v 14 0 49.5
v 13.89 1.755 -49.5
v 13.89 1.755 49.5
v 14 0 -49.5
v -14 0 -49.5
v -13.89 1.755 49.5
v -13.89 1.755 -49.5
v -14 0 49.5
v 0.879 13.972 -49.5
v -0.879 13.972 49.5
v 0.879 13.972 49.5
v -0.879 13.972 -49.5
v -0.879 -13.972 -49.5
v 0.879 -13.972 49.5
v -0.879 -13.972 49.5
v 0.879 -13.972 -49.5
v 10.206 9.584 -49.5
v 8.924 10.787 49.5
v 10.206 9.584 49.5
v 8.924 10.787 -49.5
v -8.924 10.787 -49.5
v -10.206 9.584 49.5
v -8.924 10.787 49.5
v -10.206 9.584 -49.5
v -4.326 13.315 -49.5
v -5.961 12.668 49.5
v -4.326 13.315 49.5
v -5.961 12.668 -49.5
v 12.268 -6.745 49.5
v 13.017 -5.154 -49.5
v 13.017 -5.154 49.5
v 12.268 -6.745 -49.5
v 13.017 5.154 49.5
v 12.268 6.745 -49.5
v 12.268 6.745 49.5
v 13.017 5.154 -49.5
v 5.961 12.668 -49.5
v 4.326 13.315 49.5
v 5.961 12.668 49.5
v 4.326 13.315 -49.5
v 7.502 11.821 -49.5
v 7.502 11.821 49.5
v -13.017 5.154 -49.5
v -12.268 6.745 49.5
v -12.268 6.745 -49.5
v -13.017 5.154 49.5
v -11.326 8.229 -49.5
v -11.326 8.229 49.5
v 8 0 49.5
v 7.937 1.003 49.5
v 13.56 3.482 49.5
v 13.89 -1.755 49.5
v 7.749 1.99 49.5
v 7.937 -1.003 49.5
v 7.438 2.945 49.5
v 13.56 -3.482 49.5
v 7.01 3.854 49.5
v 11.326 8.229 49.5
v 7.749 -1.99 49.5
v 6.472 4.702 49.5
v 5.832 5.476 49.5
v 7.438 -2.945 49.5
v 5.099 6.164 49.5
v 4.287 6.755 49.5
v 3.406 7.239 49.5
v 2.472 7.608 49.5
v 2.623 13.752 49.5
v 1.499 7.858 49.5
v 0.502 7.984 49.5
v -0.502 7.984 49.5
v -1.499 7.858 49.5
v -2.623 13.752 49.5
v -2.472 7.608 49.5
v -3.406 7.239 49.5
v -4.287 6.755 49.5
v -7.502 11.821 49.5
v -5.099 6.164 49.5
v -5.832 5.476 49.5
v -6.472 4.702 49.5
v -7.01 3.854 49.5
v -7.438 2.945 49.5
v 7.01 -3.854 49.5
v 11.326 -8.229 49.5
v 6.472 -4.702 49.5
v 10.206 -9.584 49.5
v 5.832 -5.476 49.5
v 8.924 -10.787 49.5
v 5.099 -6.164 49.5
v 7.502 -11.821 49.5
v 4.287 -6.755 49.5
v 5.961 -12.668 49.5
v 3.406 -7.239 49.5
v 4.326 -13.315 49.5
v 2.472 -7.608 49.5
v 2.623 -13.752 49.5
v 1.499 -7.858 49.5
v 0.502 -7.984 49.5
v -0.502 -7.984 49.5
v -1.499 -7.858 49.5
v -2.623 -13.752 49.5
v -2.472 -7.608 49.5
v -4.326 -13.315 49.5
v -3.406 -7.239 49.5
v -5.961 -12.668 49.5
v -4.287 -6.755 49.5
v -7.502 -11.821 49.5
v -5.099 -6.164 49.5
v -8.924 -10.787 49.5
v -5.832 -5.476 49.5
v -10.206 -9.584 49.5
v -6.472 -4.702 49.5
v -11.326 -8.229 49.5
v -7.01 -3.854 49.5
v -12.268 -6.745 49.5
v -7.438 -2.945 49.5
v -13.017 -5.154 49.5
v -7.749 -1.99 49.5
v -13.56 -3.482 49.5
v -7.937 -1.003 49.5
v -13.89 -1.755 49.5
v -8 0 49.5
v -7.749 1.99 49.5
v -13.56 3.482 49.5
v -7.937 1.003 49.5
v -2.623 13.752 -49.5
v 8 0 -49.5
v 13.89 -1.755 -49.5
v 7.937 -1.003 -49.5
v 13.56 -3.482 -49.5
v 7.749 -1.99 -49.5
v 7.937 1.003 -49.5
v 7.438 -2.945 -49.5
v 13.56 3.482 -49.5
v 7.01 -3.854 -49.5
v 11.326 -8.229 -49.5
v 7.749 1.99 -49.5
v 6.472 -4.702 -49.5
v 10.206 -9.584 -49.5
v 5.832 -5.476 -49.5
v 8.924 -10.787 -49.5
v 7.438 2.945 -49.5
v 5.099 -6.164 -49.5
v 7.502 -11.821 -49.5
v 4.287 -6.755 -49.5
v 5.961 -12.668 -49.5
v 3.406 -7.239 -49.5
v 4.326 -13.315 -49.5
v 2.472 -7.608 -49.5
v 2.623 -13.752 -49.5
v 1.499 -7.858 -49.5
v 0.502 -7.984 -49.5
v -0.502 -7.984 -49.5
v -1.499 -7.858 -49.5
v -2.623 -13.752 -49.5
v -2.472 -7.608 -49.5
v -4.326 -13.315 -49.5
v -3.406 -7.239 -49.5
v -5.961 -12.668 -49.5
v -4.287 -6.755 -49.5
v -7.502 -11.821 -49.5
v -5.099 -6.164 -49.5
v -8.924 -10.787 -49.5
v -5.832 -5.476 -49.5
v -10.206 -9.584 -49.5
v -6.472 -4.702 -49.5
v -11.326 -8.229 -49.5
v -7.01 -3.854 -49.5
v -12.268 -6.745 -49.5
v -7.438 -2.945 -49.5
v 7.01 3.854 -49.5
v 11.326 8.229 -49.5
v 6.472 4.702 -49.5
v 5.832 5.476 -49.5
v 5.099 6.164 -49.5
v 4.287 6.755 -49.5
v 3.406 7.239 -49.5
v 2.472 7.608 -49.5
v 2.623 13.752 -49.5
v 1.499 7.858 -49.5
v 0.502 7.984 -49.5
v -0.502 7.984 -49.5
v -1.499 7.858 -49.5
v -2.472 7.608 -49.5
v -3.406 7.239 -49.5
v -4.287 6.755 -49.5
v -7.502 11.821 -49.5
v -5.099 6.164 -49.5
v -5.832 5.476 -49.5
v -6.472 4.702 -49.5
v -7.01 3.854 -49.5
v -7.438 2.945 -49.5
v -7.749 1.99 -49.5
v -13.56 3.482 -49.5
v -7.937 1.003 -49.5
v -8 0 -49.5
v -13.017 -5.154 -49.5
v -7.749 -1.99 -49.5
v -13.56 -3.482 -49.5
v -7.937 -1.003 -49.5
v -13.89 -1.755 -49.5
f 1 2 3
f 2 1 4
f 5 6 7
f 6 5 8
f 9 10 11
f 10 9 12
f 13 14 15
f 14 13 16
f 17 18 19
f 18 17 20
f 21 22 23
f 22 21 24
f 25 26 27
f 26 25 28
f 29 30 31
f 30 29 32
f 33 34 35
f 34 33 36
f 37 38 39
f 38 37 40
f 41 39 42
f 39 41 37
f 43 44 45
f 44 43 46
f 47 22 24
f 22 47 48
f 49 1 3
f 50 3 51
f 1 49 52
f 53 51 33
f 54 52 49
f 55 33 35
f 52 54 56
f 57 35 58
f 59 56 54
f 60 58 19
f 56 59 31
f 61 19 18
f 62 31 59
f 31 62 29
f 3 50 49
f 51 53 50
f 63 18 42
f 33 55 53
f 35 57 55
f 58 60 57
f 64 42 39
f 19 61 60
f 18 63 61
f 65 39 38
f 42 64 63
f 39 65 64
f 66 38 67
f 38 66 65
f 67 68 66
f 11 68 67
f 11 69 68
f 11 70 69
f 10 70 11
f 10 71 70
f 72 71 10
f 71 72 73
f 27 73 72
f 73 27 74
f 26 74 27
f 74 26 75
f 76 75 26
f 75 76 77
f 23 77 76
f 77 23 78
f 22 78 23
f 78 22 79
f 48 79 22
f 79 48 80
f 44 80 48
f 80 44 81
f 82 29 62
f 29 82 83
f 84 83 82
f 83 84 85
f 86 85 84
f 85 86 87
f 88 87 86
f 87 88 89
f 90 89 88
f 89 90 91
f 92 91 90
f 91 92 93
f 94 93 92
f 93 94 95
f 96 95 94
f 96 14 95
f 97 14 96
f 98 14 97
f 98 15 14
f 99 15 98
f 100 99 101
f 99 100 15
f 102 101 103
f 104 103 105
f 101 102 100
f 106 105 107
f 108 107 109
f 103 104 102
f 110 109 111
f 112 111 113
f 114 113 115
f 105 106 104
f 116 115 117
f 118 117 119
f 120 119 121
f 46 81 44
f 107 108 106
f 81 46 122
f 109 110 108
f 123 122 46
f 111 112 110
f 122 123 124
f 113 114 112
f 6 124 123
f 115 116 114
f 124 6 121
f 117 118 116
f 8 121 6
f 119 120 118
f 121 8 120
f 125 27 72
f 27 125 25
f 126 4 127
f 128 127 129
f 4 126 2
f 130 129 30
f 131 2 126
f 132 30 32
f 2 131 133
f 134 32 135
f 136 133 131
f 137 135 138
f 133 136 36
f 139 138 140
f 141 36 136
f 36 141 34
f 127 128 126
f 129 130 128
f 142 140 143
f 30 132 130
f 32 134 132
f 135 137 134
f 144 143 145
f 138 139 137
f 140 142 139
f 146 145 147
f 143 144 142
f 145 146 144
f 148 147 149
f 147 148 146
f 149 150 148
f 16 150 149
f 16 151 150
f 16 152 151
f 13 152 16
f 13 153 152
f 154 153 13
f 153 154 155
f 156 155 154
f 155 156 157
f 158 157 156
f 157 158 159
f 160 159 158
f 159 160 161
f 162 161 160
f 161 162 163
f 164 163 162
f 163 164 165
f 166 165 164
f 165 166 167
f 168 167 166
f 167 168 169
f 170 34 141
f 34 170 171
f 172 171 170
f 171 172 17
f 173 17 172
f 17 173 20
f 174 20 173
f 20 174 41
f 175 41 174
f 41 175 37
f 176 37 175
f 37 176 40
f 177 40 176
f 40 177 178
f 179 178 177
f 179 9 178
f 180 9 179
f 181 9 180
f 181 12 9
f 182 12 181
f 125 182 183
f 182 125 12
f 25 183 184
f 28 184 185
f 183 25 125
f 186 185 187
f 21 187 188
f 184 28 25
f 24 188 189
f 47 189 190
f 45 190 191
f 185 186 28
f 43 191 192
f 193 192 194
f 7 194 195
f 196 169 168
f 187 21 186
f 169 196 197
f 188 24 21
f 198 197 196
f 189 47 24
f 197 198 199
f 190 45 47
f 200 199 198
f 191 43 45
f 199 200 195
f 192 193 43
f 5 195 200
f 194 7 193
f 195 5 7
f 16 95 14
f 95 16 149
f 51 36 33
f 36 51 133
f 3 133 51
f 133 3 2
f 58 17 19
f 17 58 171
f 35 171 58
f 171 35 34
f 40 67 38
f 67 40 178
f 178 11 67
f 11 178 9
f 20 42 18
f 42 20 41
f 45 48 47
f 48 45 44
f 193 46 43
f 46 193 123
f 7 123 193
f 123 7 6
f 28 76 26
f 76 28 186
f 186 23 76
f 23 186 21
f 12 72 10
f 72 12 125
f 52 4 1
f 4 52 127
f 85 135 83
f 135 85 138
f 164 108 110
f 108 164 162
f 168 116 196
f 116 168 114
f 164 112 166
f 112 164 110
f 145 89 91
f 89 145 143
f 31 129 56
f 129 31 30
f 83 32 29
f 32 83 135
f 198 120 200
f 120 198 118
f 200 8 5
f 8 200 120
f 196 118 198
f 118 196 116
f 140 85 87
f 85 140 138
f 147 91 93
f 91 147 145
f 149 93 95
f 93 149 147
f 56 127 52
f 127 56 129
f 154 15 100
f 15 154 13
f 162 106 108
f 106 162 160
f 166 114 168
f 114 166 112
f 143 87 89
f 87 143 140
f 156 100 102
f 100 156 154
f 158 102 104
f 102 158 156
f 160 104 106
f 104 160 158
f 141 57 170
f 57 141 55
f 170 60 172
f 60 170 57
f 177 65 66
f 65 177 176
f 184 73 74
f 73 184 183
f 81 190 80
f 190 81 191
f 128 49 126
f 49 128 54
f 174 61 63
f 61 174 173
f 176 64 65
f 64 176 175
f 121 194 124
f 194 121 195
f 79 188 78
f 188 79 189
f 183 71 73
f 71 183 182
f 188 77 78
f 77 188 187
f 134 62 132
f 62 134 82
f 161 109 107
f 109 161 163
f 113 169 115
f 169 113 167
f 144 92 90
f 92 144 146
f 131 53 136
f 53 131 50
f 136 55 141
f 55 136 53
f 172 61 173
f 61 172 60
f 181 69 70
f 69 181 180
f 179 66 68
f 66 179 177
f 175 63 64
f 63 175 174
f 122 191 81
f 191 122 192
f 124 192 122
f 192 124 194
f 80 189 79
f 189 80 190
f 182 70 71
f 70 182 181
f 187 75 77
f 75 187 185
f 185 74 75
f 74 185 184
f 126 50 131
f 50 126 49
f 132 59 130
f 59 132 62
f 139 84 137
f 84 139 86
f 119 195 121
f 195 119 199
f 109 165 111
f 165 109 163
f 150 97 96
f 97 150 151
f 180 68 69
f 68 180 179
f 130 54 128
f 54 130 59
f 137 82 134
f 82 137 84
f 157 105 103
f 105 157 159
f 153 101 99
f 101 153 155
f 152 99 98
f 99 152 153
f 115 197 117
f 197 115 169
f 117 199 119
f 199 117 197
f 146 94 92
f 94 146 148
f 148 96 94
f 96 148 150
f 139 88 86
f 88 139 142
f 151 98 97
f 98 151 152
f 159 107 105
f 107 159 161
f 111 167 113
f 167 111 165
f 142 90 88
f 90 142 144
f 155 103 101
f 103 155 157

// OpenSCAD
$fn = 50;


difference() {
	union() {
		translate(v = [0, 0, -49.5000000000]) {
			cylinder(h = 99, r = 14.0000000000);
		}
	}
	union() {
		translate(v = [0, 0, -100.0000000000]) {
			cylinder(h = 200, r = 8);
		}
	}
}
